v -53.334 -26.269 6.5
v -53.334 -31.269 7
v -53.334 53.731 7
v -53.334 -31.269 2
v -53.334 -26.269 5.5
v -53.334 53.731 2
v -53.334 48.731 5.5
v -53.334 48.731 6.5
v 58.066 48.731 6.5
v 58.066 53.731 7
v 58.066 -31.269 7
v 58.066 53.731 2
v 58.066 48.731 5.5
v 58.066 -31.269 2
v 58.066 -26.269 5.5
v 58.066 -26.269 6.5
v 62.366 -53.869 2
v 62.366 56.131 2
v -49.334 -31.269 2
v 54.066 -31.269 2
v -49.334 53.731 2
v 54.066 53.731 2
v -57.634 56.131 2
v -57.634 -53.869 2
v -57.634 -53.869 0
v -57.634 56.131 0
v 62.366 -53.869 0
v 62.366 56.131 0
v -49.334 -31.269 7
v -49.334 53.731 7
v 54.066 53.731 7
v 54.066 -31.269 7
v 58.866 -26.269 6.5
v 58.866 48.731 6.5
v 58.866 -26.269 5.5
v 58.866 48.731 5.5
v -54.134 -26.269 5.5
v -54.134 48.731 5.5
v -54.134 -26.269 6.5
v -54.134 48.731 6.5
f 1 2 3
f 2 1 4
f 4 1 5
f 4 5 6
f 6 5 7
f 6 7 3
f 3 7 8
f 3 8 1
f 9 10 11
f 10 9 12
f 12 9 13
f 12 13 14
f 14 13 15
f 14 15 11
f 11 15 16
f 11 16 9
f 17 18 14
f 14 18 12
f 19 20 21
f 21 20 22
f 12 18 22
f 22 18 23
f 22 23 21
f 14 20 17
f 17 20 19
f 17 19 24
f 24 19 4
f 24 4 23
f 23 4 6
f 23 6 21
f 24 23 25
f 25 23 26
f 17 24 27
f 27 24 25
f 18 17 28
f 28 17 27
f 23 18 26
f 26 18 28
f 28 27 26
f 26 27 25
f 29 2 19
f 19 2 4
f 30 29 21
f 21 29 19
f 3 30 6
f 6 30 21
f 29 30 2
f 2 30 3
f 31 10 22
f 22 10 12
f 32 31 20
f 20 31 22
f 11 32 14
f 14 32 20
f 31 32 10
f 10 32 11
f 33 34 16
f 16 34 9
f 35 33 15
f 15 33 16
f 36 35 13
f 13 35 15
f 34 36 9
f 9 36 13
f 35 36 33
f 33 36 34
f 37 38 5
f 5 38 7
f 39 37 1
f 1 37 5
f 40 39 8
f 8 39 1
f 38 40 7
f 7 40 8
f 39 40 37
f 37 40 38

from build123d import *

# Parameters (mm, degrees)
SKIZZE1_W                       = 120
SKIZZE1_H                       = 110
AUFSATZ_LINEAR_AUSTRAGEN1_DEPTH = 2
SKIZZE2_W                       = 4
SKIZZE2_H                       = 85
AUFSATZ_LINEAR_AUSTRAGEN2_DEPTH = 5
SKIZZE3_W                       = 1
SKIZZE3_H                       = 75
AUFSATZ_LINEAR_AUSTRAGEN3_DEPTH = 0.8
SKIZZE4_W                       = 1
SKIZZE4_H                       = 75
AUFSATZ_LINEAR_AUSTRAGEN4_DEPTH = 0.8


with BuildPart() as part:
    # Skizze1 → Aufsatz-Linear austragen1 (new body)
    with BuildSketch(Plane.XY):
        with Locations((2.366105943, 1.130520765)):
            Rectangle(SKIZZE1_W, SKIZZE1_H)
    extrude(amount=AUFSATZ_LINEAR_AUSTRAGEN1_DEPTH)

    # Skizze2 → Aufsatz-Linear austragen2 (add)
    with BuildSketch(Plane.XY.offset(2)):
        with Locations((-51.333894057, 11.230520765)):
            Rectangle(SKIZZE2_W, SKIZZE2_H)
        with Locations((56.066105943, 11.230520765)):
            Rectangle(SKIZZE2_W, SKIZZE2_H)
    extrude(amount=AUFSATZ_LINEAR_AUSTRAGEN2_DEPTH)

    # Skizze3 → Aufsatz-Linear austragen3 (add)
    with BuildSketch(Plane(origin=(58.066105943, 0, 0), x_dir=(0, 0, -1), z_dir=(1, 0, 0))):
        with Locations((-6, 11.230520765)):
            Rectangle(SKIZZE3_W, SKIZZE3_H)
    extrude(amount=AUFSATZ_LINEAR_AUSTRAGEN3_DEPTH)

    # Skizze4 → Aufsatz-Linear austragen4 (add)
    with BuildSketch(Plane.ZY.offset(53.333894057)):
        with Locations((6, 11.230520765)):
            Rectangle(SKIZZE4_W, SKIZZE4_H)
    extrude(amount=AUFSATZ_LINEAR_AUSTRAGEN4_DEPTH)


solid = part.part
